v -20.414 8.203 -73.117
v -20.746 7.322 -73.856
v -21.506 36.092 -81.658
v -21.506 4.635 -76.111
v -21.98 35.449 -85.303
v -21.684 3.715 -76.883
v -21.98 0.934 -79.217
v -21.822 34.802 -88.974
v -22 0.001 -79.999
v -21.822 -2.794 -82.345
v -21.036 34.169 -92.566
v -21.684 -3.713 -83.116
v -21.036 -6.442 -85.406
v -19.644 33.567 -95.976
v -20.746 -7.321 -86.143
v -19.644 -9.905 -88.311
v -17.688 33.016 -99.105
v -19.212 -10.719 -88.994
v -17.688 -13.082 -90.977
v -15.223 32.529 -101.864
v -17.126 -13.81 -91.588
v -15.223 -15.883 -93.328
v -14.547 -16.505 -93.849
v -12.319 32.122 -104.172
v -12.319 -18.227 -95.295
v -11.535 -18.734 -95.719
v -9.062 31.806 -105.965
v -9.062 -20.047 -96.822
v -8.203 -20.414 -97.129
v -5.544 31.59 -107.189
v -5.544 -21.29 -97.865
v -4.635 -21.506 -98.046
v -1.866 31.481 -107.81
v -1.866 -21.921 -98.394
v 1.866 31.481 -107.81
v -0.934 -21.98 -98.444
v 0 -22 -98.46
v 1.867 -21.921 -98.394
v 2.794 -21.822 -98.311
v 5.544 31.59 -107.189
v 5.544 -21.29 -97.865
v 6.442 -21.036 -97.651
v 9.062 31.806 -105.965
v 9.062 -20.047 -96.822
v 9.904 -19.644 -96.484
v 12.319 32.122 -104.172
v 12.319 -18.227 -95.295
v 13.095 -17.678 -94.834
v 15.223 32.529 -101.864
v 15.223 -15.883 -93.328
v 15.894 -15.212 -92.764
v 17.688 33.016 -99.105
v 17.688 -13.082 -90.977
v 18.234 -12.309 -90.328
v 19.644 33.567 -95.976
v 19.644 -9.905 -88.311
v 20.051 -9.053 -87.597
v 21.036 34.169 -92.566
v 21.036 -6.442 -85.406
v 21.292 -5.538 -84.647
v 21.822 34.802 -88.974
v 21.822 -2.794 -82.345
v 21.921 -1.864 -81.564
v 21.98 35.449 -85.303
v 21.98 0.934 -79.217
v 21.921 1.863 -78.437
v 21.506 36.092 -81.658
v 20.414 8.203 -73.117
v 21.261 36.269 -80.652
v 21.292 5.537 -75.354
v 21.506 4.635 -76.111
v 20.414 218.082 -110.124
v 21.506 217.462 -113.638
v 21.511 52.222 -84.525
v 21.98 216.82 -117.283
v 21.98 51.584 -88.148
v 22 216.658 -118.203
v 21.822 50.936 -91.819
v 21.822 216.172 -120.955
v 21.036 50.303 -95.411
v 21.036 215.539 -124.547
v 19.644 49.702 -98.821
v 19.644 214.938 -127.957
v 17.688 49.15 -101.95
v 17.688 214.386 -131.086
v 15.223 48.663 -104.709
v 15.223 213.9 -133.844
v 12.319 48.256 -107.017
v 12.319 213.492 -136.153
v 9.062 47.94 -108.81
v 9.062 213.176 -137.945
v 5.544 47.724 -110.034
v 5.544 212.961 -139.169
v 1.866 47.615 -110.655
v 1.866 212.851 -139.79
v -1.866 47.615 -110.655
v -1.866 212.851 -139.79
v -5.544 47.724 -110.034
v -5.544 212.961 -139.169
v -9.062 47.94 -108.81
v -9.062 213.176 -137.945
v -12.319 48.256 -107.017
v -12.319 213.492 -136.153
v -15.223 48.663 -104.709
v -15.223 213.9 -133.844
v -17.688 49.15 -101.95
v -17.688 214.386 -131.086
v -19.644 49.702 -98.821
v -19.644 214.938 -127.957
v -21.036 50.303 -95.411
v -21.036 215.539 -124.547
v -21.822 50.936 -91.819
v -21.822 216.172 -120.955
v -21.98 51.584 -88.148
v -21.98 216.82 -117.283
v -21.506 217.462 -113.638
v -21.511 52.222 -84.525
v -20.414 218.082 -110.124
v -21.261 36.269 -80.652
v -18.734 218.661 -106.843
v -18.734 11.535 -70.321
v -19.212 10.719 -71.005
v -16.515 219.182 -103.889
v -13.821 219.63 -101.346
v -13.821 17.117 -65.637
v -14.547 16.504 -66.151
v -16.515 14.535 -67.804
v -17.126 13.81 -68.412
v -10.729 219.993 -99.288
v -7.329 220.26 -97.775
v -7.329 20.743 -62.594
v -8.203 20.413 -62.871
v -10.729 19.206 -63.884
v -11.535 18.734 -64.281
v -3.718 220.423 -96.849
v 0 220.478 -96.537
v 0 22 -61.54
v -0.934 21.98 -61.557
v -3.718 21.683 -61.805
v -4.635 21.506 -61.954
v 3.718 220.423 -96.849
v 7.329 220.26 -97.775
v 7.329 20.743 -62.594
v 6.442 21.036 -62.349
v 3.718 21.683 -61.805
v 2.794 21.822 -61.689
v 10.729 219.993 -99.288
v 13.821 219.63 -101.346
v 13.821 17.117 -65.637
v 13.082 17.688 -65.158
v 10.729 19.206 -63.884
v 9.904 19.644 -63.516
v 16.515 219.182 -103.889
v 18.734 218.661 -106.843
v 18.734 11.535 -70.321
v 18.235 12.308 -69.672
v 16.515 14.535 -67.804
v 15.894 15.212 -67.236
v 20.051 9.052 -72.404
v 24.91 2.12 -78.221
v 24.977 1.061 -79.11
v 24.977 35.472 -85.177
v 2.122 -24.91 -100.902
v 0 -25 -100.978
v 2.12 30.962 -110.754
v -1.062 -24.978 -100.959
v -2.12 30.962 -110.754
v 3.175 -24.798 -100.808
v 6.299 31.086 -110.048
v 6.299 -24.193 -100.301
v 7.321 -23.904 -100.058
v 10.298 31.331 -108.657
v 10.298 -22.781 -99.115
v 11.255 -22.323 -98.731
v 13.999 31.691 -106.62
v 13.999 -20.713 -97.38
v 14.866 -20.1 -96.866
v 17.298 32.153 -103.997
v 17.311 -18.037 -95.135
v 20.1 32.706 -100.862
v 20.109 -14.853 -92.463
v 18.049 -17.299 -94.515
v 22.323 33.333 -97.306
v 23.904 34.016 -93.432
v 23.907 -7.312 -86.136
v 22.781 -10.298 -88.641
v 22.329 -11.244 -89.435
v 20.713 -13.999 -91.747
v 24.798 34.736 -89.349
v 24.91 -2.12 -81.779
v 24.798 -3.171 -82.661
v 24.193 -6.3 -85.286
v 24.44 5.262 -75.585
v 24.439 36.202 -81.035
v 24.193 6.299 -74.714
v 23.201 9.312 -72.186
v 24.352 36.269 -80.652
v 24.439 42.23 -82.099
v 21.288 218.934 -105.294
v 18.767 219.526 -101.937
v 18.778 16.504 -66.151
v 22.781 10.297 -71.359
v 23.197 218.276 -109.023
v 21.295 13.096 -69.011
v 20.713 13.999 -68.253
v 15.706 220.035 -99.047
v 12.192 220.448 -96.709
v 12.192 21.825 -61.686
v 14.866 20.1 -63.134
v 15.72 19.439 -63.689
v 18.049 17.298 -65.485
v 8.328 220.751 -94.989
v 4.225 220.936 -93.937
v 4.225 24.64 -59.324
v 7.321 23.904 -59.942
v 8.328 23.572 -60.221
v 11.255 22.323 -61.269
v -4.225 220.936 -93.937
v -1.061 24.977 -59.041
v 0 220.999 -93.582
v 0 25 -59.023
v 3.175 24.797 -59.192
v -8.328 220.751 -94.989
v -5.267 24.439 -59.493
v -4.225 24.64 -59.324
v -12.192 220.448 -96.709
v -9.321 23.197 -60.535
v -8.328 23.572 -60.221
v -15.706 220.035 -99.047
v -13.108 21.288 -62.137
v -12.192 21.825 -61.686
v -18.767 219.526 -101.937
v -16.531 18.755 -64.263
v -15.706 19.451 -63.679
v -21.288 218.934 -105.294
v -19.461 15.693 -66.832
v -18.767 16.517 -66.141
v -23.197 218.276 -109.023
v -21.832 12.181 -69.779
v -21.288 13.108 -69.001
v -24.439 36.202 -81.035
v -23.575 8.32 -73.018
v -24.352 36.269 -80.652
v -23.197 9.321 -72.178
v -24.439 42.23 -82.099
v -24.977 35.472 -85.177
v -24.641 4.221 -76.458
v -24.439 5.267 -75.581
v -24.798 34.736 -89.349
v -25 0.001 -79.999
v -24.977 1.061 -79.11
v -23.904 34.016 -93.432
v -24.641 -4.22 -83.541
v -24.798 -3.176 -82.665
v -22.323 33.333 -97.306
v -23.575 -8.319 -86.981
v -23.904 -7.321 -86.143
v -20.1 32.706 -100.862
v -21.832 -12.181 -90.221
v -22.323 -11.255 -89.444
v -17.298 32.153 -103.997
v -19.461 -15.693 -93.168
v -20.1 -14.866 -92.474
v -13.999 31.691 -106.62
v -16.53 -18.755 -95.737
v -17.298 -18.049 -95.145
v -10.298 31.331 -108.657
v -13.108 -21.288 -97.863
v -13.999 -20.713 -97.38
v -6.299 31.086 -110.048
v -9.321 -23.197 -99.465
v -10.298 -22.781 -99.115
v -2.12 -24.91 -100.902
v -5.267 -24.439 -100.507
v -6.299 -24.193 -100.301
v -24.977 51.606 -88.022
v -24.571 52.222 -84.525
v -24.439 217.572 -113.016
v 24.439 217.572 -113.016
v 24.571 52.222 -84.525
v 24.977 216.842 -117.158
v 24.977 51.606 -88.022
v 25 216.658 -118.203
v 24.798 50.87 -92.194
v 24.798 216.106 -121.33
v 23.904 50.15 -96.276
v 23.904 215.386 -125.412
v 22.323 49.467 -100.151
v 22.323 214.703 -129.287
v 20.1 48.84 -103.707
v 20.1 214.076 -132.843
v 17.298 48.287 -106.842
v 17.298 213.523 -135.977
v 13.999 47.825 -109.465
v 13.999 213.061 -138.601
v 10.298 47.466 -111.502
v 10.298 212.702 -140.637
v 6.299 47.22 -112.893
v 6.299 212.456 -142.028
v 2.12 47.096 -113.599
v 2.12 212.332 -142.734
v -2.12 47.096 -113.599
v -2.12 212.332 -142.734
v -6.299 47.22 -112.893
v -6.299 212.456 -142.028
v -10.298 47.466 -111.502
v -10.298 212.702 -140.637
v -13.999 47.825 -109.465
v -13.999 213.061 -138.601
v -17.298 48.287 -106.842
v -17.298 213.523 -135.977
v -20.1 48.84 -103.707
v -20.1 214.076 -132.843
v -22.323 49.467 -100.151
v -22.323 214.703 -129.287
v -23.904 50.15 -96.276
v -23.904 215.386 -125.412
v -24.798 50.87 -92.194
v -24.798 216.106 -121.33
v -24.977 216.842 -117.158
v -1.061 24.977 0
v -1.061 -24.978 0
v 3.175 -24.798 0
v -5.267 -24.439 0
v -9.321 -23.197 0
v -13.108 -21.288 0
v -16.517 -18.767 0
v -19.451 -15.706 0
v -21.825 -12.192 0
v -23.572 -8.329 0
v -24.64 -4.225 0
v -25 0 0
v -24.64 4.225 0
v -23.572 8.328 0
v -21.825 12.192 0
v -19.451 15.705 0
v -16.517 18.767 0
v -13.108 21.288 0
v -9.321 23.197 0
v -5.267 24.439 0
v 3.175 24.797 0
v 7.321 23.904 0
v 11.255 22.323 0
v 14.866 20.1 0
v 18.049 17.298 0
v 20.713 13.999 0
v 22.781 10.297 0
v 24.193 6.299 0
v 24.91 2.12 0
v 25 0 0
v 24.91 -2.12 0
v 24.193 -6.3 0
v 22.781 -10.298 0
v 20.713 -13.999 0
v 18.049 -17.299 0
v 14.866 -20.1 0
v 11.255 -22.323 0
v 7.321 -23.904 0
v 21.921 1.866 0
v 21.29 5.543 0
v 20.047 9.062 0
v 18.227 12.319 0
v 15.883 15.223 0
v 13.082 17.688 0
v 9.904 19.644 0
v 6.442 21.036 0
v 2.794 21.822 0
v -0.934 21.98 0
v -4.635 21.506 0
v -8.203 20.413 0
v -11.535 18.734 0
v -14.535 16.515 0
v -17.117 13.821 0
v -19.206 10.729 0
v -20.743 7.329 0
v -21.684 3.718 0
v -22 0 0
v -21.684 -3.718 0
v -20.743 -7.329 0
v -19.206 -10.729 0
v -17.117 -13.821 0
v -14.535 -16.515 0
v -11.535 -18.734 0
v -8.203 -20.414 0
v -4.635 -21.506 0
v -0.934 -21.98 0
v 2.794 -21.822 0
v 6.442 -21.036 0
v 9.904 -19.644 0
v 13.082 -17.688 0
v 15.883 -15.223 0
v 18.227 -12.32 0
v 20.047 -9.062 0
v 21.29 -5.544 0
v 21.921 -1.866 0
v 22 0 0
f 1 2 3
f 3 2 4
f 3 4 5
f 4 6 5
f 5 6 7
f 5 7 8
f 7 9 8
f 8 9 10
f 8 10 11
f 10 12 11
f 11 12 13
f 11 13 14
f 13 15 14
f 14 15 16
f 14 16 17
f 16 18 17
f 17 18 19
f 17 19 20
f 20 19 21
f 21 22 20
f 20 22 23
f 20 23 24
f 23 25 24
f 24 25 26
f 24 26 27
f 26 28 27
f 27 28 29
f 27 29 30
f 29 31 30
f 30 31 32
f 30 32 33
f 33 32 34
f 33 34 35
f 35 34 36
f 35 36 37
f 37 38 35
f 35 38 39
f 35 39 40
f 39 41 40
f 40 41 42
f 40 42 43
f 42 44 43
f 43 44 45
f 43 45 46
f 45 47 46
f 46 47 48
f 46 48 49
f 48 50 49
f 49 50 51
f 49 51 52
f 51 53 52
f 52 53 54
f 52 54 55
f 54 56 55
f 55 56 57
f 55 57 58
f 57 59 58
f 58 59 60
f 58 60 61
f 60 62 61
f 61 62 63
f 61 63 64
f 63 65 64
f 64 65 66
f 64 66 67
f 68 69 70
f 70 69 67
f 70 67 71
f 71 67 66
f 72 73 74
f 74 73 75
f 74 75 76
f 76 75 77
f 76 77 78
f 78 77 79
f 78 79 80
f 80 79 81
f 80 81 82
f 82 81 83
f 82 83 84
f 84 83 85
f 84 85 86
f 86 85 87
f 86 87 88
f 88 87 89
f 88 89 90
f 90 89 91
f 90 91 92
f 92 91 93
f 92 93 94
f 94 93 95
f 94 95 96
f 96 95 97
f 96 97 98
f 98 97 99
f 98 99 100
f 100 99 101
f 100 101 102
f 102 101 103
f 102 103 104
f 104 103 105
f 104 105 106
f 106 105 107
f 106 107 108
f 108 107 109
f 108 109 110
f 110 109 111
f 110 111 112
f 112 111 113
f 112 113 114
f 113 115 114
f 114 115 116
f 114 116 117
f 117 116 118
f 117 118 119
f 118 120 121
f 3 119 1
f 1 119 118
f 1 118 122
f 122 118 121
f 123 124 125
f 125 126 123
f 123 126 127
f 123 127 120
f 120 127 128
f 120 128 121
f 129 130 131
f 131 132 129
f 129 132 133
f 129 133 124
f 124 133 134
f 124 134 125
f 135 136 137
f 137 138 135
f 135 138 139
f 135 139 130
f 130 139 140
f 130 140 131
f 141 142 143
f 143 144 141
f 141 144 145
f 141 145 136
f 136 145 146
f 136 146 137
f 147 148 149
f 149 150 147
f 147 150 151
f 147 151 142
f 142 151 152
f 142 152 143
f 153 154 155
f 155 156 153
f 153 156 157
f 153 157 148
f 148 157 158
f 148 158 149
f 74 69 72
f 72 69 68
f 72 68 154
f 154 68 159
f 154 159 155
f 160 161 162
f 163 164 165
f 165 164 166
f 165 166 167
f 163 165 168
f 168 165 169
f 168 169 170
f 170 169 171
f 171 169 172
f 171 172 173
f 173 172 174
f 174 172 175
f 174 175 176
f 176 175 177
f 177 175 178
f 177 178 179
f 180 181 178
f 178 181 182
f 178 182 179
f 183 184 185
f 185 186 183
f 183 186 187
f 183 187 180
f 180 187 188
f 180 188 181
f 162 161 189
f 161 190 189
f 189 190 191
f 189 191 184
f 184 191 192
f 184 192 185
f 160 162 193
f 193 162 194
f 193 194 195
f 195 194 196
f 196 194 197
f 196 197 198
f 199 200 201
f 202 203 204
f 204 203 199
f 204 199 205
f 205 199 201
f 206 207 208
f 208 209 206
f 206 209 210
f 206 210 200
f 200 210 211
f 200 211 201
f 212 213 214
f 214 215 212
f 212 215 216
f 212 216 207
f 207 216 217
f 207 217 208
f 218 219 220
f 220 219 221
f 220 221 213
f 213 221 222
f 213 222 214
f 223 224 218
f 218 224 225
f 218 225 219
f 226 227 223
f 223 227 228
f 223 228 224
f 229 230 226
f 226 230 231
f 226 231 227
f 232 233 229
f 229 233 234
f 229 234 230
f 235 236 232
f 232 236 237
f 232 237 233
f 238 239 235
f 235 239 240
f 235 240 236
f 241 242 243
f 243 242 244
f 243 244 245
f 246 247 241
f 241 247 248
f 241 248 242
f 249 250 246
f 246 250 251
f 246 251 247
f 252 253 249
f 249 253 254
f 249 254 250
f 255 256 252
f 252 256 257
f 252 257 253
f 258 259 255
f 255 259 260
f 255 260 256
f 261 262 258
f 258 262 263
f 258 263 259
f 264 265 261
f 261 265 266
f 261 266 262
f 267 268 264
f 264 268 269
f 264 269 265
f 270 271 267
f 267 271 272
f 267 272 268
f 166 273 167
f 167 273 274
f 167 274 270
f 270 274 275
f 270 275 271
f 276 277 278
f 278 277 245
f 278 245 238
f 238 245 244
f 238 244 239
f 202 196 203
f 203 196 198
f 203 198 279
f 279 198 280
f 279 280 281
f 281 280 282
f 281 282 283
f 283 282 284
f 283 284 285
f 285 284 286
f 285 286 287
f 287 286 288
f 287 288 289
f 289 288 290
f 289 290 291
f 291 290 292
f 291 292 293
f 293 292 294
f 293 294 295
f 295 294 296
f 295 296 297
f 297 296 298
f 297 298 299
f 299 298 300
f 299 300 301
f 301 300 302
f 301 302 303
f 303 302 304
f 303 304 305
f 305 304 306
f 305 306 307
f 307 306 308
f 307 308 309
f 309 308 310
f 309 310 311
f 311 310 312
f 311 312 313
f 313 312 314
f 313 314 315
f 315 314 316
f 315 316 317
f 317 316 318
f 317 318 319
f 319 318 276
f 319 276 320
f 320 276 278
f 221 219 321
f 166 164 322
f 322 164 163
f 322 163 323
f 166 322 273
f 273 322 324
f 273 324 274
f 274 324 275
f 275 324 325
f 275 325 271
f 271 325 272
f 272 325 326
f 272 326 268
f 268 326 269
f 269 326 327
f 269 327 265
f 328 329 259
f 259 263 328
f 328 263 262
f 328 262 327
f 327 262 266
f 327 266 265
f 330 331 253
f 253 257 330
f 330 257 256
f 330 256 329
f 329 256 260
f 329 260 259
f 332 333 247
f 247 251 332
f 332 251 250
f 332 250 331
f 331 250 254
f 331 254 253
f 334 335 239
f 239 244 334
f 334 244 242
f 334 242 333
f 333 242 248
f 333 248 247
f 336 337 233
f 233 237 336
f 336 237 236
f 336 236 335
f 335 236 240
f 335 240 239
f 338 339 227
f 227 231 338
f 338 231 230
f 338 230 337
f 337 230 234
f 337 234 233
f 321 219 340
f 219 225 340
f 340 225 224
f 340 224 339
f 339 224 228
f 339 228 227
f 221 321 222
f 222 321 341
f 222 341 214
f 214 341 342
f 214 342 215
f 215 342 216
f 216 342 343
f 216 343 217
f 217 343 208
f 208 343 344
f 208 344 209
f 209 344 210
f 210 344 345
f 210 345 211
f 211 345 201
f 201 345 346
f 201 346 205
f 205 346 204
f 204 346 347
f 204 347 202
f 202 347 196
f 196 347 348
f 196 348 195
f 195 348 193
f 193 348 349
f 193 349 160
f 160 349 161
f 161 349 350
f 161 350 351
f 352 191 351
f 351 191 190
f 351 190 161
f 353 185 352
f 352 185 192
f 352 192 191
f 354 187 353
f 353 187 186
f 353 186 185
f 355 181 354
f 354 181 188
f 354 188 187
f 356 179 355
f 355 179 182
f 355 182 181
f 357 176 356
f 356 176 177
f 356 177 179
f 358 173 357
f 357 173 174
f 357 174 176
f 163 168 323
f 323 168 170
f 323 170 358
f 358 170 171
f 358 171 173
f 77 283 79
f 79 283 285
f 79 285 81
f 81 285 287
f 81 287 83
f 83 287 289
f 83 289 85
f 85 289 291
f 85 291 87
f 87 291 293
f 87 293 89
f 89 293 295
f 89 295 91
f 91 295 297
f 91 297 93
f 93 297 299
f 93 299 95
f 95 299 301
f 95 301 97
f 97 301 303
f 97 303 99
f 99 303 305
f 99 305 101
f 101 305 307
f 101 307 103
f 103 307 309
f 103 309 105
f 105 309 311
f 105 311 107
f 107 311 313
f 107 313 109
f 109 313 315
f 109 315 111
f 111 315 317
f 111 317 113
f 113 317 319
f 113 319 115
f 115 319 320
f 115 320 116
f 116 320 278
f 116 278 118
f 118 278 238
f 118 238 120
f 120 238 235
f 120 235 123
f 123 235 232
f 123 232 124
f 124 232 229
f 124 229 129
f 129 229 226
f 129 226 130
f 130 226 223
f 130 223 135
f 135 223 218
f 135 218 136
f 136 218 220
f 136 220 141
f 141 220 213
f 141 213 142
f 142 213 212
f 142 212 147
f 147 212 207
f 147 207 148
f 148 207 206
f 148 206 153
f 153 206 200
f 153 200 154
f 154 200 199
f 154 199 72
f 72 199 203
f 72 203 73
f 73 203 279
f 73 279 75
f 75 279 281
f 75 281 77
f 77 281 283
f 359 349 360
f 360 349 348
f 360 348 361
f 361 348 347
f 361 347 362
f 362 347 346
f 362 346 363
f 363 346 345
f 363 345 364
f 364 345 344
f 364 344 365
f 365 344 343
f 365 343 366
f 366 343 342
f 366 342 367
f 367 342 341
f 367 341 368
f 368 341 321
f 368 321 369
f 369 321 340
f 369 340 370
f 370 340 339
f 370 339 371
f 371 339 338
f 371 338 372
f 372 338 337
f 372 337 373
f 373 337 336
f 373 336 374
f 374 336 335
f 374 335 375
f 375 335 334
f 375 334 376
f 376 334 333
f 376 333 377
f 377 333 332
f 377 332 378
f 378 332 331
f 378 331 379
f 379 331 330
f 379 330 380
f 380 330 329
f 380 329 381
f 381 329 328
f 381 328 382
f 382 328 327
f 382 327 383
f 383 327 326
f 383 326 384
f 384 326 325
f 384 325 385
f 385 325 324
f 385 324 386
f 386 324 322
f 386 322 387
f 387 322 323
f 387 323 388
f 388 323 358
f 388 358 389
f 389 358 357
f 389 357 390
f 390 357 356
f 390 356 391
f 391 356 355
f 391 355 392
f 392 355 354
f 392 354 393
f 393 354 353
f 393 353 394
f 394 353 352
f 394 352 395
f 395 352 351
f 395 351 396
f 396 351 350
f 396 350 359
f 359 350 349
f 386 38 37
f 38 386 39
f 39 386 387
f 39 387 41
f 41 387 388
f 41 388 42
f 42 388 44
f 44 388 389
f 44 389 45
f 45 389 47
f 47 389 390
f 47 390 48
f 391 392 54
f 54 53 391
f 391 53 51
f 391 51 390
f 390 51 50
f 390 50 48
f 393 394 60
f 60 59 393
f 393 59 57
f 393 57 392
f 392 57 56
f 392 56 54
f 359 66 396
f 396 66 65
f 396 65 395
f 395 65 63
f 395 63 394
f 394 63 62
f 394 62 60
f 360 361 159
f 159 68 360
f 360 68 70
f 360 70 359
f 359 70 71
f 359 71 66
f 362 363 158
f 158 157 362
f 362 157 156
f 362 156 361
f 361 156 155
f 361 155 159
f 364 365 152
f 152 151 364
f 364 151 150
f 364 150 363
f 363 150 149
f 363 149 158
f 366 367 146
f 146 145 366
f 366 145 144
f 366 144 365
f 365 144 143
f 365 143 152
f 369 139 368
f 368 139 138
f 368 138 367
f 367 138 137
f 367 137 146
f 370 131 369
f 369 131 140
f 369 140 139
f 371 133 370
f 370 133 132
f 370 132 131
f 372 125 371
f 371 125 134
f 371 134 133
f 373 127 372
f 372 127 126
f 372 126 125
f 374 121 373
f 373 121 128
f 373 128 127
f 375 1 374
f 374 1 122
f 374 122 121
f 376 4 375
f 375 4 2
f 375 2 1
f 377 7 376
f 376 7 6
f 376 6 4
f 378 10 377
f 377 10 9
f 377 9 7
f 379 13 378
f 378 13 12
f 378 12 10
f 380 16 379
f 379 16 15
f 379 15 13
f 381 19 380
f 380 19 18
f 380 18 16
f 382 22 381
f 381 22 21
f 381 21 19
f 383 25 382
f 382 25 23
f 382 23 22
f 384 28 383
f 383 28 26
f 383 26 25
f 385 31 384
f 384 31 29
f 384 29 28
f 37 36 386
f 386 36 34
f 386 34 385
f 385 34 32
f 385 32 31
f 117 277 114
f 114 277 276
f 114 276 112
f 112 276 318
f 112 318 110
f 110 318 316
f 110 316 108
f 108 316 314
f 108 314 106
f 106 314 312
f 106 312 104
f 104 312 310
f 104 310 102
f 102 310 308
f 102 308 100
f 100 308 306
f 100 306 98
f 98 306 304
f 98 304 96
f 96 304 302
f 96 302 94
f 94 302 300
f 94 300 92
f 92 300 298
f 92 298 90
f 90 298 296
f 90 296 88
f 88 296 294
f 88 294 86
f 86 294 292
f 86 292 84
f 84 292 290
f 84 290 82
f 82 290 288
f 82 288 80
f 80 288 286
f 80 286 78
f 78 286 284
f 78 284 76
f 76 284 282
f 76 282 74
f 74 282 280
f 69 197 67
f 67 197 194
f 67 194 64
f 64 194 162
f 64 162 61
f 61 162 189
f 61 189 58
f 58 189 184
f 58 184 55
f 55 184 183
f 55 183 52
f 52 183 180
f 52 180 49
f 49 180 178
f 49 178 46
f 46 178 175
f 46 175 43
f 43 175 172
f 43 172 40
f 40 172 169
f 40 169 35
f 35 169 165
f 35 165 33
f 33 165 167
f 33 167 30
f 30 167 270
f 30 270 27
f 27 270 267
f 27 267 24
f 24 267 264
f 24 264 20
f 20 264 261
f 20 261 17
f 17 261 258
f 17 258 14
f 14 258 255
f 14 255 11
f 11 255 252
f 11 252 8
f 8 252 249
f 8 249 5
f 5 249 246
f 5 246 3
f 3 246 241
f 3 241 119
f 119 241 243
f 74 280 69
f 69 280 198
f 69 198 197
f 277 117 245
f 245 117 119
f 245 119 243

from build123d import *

# Parameters (mm, degrees)
SKETCH3_R               = 25
SKETCH3_R_2             = 22
CUT_EXTRUDE2_DEPTH      = 26
CUT_EXTRUDE2_DEPTH_BACK = 26


with BuildPart() as part:
    # Sweep1: sweep along a path in Sketch1
    with BuildLine(Plane(origin=(0, 0, 0), x_dir=(0, 0, -1), z_dir=(1, 0, 0))) as sweep1_path:
        Line((0, 0), (80, 0))
        Line((80, 0), (118.202599087, 216.657705663))
    # Sketch3 → Sweep1 (sweep)
    with BuildSketch(Plane.XY):
        Circle(SKETCH3_R)
        Circle(SKETCH3_R_2, mode=Mode.SUBTRACT)
    sweep(path=sweep1_path.line, transition=Transition.RIGHT)

    # Sketch4 → Cut-Extrude2 (cut, two sides)
    with BuildSketch(Plane(origin=(0, 0, 0), x_dir=(0, 0, -1), z_dir=(1, 0, 0))) as cut_extrude2_sk:
        Polygon((110.842308967, 30.946164041), (113.687194162, 47.080309724), (94.794337041, 50.411630176), (84.524899127, 52.222409157), (80.652201417, 36.269494553), align=None)
    extrude(amount=CUT_EXTRUDE2_DEPTH, mode=Mode.SUBTRACT)
    extrude(cut_extrude2_sk.sketch, amount=-CUT_EXTRUDE2_DEPTH_BACK, mode=Mode.SUBTRACT)


solid = part.part
